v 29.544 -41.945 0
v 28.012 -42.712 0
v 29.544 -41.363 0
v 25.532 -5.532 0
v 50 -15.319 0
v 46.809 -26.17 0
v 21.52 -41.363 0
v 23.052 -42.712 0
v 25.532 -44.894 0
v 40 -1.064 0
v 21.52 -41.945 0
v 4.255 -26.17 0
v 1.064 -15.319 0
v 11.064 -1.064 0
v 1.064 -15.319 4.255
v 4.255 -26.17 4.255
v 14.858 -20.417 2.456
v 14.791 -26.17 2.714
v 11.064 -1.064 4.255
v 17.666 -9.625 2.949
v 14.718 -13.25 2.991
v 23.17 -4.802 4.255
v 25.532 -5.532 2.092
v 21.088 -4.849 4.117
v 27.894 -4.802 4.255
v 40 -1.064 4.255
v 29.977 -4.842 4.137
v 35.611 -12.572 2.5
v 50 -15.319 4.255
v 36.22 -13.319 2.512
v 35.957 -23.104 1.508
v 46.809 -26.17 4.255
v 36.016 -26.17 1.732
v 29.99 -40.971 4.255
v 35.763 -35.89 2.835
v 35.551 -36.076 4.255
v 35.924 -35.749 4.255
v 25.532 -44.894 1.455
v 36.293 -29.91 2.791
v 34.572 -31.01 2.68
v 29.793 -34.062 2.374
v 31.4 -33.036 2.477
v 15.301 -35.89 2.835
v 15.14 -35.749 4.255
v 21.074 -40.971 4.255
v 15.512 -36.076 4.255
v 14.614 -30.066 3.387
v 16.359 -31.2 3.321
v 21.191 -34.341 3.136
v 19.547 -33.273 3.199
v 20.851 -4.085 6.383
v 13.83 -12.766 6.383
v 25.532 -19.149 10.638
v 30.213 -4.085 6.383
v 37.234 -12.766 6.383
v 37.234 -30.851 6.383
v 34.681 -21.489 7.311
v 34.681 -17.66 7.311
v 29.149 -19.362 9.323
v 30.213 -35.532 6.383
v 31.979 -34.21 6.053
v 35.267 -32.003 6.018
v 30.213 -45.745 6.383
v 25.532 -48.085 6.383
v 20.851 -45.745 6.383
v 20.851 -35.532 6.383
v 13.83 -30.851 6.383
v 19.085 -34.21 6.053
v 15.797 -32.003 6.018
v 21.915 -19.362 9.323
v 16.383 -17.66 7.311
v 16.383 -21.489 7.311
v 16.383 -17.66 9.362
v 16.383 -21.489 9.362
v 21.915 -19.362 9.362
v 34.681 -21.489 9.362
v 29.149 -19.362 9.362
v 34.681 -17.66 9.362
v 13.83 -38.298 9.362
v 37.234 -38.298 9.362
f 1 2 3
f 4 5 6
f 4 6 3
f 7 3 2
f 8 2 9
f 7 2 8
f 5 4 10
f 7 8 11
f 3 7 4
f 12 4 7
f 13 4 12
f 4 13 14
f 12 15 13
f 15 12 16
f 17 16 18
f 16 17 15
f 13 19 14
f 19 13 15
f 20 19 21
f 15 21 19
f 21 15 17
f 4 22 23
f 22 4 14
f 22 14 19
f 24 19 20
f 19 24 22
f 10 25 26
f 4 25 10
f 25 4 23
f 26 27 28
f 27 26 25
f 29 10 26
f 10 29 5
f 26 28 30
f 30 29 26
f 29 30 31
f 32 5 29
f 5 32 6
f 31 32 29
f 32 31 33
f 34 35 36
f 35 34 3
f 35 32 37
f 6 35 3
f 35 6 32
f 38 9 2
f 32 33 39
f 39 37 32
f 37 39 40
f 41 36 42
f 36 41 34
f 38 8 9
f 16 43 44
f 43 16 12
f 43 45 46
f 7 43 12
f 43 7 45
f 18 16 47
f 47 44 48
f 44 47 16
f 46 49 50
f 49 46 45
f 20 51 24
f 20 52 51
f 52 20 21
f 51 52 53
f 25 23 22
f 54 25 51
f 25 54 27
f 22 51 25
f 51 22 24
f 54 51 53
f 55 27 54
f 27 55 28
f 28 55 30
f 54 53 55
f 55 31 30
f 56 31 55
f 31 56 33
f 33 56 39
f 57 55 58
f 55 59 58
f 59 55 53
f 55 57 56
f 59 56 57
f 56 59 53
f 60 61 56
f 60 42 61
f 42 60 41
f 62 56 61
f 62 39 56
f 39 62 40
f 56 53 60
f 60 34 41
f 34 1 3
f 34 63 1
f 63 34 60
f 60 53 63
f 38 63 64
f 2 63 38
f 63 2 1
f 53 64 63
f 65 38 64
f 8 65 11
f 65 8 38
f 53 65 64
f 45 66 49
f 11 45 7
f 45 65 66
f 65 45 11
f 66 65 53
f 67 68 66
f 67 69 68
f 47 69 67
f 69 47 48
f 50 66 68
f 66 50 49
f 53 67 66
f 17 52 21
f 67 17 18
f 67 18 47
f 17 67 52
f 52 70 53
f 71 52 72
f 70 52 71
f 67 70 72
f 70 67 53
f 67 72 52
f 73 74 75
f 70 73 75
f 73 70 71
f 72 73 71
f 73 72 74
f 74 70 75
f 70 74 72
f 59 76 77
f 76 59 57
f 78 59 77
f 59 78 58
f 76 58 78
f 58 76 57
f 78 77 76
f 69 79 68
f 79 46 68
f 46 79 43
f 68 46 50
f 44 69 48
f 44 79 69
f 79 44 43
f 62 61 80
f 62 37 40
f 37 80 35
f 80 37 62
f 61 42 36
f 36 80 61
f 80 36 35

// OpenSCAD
baseDepth = 100;
heartDepth = -baseDepth * 0.9;
headEdgeDepth = 50;
headCenterDepth = headEdgeDepth + 100;
eyeLow = headEdgeDepth + (headCenterDepth - headEdgeDepth) * 0.7;
eyeHigh = eyeLow;
tuskLow = headEdgeDepth * 0.7;
tuskHigh = eyeHigh;
targetWidth = 50;
maxX = 1175;
scaleFactor = targetWidth/maxX;

module triangle (x1, y1, x2, y2) {
    polyhedron(points = [
      [x1, y1, 0],
      [x2, y2, 0],
      [715,-615,0],
      [x1, y1, baseDepth],
      [x2, y2, baseDepth],
      [715,-615,baseDepth + heartDepth],
    ], faces = [
      [0, 1, 2], // bottom
      [0, 3, 4, 1],
      [0, 2, 5, 3],
      [1, 4, 5, 2],
      [3, 5, 4], // top
    ]);
};

module graphileheart() {
    triangle(100,-615,25,-360);
    triangle(25,-360,260,-25);
    triangle(260,-25,600,-130);
    triangle(600,-130,940,-25);
    triangle(940,-25,1175,-360);
    triangle(1175,-360,1100,-615);
    triangle(1100,-615,600,-1055);
    triangle(600,-1055,100,-615);
}


module etriangle (x1, y1, x2, y2) {
    polyhedron(points = [
      [x1, y1, baseDepth + headEdgeDepth],
      [x2, y2, baseDepth + headEdgeDepth],
      [600,-450,baseDepth - 1000],
      [600,-450,baseDepth + headCenterDepth]
    ], faces = [
      [0, 2, 1], // bottom
      [0, 1, 3], // top
      [0, 3, 2],
      [1, 2, 3]
    ]);
};

module elephanthead() {
    etriangle(325,-300,490,-96);
    etriangle(490,-96,710,-96);
    etriangle(710,-96,875,-300);

    etriangle(875,-300,875,-725);

    etriangle(875,-725,710,-835);
    etriangle(710,-835,710,-1075);
    etriangle(710,-1075,600,-1130);
    etriangle(600,-1130,490,-1075);
    etriangle(490,-1075,490,-835);
    etriangle(490,-835,325,-725);

    etriangle(325,-725,325,-300);
}


module eye (x1, y1, x2, y2, x3, y3) {
    polyhedron(points = [
      [x1, y1, baseDepth],
      [x2, y2, baseDepth],
      [x3, y3, baseDepth],
      [x1, y1, baseDepth + eyeHigh],
      [x2, y2, baseDepth + eyeLow],
      [x3, y3, baseDepth + eyeHigh],
    ], faces = [
      [0, 1, 2], // bottom
      [3, 5, 4], // top
      [0, 3, 4, 1],
      [0, 2, 5, 3],
      [1, 4, 5, 2],
    ]);
};

module tusk (x1, y1, x2, y2, x3, y3) {
    polyhedron(points = [
      [600,-450, -1000],
      [x1, y1, baseDepth + tuskLow],
      [x2, y2, baseDepth + tuskLow],
      [x3, y3, baseDepth + tuskHigh],
    ], faces = [
      [1, 2, 3], // top
      [0, 2, 1],
      [0, 1, 3],
      [0, 3, 2],
    ]);
};

module main() {
    union() {
    graphileheart();
    elephanthead();
    eye(385,-415,515,-455,385,-505);
    eye(815,-415,685,-455,815,-505);
    tusk(375,-740,460,-795,325,-900);
    tusk(825,-740,740,-795,875,-900);
    }
}

scale([scaleFactor, scaleFactor, scaleFactor]) {
    difference() {
        main();
        translate([0, -2000, -2000]) {
            cube([2000, 2000, 2000]);
        }
    }
}
